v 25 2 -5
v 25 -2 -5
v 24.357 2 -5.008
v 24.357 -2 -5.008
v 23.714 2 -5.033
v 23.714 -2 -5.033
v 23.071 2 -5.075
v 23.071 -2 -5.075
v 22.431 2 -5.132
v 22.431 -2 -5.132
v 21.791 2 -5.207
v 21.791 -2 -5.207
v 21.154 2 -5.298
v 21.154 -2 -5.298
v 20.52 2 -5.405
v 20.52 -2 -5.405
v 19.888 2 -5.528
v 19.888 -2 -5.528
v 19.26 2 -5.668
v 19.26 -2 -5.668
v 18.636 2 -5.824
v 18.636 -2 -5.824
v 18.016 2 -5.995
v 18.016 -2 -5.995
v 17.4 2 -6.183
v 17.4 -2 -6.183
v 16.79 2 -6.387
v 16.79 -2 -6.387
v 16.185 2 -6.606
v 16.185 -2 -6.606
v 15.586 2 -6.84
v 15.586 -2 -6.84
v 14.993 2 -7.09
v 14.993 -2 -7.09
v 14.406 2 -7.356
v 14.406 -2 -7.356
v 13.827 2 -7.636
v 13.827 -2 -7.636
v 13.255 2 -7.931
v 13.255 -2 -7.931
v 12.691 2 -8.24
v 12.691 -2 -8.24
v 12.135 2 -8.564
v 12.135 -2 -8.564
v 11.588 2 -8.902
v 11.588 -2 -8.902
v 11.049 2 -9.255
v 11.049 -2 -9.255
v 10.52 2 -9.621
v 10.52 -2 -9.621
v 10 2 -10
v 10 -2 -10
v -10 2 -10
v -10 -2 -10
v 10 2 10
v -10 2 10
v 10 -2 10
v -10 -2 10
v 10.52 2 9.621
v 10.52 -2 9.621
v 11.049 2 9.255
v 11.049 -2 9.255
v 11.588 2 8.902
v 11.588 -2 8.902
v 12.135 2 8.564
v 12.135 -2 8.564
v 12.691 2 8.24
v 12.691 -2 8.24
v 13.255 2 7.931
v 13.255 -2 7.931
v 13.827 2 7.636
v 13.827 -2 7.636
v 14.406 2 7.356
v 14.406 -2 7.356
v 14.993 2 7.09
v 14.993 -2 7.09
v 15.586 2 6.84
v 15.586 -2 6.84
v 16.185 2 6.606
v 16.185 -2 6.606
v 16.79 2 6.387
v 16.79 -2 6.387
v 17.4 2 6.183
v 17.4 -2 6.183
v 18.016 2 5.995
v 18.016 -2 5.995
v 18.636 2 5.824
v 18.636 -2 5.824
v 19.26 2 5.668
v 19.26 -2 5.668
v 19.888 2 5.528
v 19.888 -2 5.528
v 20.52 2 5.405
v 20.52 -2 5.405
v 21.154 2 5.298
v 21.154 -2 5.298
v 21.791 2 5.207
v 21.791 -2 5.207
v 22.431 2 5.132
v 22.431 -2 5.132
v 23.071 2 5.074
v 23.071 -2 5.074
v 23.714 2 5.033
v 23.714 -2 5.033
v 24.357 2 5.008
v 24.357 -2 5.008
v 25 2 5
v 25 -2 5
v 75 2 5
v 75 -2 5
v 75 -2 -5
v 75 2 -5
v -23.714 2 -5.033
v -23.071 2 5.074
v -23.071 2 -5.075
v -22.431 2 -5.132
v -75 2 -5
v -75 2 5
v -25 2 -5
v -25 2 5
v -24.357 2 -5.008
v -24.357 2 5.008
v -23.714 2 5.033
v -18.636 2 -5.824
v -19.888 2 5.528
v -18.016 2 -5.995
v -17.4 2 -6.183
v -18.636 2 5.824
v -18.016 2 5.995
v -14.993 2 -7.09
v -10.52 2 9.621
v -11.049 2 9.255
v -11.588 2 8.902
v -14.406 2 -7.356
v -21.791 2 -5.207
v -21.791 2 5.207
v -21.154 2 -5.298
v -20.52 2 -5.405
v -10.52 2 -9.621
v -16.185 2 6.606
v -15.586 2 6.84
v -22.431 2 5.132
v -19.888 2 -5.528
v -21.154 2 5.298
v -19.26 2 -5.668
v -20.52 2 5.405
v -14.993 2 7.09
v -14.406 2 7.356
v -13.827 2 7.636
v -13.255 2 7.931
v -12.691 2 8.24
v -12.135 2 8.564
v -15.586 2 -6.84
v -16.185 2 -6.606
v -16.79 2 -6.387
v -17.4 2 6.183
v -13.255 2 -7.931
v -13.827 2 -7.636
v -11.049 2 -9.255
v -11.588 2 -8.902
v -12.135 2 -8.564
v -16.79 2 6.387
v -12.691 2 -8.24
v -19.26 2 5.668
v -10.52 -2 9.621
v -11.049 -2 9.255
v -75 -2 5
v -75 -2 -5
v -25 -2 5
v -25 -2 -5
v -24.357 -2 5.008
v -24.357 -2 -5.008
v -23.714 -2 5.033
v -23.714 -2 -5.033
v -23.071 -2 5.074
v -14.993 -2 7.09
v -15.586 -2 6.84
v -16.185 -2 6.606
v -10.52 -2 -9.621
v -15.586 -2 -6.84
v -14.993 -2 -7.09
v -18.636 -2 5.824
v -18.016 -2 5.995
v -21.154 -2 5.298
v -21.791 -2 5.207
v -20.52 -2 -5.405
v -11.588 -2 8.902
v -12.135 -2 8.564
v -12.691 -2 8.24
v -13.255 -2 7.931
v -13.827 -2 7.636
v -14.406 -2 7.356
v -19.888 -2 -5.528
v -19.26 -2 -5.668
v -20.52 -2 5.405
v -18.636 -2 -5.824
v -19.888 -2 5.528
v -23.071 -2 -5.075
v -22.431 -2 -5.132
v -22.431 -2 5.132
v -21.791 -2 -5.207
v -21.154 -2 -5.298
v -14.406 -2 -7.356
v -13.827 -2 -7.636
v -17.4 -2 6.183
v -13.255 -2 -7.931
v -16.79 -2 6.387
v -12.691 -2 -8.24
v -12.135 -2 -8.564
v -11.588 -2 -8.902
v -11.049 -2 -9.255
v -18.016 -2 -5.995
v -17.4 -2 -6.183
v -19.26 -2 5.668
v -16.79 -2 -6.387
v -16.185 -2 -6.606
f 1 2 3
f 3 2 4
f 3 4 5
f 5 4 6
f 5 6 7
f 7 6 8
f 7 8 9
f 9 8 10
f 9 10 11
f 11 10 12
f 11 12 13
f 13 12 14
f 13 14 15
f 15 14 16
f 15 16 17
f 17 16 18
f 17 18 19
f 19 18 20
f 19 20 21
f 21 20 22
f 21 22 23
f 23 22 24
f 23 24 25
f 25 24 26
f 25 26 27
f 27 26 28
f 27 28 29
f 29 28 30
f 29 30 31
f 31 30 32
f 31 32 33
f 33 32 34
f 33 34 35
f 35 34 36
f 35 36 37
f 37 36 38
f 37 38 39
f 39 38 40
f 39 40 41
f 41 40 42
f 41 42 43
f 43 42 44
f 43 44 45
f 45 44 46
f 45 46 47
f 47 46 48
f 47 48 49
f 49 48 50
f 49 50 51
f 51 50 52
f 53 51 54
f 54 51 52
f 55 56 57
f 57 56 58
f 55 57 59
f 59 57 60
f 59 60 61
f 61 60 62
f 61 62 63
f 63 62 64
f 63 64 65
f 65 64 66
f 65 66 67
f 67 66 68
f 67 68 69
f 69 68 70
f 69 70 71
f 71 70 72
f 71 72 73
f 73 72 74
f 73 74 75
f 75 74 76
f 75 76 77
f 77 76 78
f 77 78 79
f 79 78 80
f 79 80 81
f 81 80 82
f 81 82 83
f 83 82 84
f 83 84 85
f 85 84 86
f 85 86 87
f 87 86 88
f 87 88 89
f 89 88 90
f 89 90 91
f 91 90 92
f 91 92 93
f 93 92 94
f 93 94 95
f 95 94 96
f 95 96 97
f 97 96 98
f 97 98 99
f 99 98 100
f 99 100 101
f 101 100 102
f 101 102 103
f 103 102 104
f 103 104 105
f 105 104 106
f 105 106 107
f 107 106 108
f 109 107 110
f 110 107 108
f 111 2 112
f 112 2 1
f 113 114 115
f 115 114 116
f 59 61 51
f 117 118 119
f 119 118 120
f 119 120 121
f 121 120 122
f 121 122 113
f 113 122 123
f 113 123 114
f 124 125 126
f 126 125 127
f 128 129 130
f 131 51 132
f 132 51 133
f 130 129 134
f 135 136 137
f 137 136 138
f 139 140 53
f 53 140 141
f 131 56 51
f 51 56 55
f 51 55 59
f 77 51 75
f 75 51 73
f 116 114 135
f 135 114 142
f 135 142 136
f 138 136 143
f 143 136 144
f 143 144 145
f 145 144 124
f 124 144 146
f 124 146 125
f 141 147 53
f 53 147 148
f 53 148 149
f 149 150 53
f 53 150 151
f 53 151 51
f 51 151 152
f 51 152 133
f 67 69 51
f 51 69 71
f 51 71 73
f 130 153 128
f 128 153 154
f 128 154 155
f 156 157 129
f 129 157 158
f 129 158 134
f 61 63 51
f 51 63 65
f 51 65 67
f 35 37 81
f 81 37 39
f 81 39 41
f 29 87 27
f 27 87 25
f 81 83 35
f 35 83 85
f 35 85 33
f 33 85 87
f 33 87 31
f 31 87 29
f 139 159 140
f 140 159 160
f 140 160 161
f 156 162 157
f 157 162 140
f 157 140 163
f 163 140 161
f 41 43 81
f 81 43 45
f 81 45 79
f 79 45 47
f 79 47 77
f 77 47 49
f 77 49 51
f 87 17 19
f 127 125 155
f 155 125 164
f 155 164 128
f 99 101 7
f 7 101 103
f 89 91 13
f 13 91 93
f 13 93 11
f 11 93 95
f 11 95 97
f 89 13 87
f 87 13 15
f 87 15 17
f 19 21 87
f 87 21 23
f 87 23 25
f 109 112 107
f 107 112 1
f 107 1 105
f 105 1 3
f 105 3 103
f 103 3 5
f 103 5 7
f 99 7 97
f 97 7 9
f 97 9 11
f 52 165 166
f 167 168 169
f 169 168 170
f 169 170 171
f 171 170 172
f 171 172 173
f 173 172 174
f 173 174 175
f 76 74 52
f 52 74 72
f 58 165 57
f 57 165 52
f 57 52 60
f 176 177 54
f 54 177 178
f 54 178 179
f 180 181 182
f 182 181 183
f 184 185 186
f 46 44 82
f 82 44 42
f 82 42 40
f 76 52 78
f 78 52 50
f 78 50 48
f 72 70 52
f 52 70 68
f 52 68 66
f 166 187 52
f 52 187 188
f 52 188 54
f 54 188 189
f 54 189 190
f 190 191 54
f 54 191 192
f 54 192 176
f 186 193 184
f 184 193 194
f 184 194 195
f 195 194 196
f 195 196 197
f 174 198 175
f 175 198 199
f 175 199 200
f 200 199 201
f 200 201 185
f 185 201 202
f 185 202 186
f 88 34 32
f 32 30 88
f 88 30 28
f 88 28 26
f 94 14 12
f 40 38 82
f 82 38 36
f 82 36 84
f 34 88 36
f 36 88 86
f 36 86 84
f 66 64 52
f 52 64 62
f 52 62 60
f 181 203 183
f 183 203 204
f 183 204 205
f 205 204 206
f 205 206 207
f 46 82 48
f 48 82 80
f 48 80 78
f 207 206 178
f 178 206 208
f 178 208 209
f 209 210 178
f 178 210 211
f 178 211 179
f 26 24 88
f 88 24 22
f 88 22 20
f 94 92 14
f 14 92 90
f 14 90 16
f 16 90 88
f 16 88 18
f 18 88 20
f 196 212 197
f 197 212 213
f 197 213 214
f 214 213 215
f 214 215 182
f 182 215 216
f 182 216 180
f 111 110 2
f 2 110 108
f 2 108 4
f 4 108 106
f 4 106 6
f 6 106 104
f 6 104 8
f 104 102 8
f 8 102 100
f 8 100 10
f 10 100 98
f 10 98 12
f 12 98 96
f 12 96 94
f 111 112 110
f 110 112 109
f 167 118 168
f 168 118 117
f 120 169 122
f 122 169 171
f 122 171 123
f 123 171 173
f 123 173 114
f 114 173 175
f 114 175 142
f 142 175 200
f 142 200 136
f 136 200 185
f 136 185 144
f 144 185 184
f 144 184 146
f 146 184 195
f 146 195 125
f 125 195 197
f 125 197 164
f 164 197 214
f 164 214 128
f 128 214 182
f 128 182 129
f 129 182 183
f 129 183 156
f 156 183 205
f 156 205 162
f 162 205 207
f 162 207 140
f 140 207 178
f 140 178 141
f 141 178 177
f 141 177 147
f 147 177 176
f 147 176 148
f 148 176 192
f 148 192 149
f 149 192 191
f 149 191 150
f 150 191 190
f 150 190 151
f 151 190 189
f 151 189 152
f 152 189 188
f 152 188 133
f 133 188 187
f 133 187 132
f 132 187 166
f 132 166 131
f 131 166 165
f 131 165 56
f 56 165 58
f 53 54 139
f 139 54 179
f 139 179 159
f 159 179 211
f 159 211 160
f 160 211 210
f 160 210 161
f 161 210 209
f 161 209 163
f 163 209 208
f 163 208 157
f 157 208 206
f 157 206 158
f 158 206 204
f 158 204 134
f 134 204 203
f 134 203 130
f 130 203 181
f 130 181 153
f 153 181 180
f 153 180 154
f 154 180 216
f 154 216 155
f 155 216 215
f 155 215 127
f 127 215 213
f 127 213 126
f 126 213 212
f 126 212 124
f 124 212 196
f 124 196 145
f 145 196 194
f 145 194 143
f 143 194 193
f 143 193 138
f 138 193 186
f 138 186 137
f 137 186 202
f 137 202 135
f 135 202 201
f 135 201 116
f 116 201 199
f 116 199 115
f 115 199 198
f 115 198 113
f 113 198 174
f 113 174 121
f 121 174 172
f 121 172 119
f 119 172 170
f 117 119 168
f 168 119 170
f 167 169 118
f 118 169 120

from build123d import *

# Parameters (mm, degrees)
BOSS_EXTRUDE1_DEPTH     = 2
CUT_EXTRUDE2_DEPTH      = 98.534609242
CUT_EXTRUDE2_DEPTH_BACK = 98.534609242
CIRPATTERN2_START       = -2
CIRPATTERN2_DEPTH       = 4


# Read off the part's stored shape, not the designer's step: CirPattern2
with BuildPart() as part:
    # Sketch1 → Boss-Extrude1 (new, symmetric)
    with BuildSketch(Plane(origin=(0, 0, 0), x_dir=(1, 0, 0), z_dir=(0, 1, 0))):
        with BuildLine():
            Line((25, 5), (97, 5))
            Line((97, 5), (97, -5))
            Line((97, -5), (25, -5))
            ThreePointArc((25, -5), (17.09430585, -6.282917549), (10, -10))
            Line((10, -10), (0, -10))
            Line((0, -10), (0, 10))
            Line((0, 10), (10, 10))
            ThreePointArc((10, 10), (17.09430585, 6.282917549), (25, 5))
        make_face()
    extrude(amount=BOSS_EXTRUDE1_DEPTH, both=True)

    # Sketch2<3> → Cut-Extrude2 (cut, two sides: drawn at the far end of the back side and taken through both)
    with BuildSketch(Plane(origin=(0, 0, 0), x_dir=(1, 0, 0), z_dir=(0, 1, 0)).offset(-CUT_EXTRUDE2_DEPTH_BACK)):
        Polygon((75, 5), (75, 0), (80.958767963, -5), (97, -5), (97, 5), align=None)
        Polygon((80.958767963, -5), (75, 0), (75, -5), align=None)
    extrude(amount=CUT_EXTRUDE2_DEPTH + CUT_EXTRUDE2_DEPTH_BACK, mode=Mode.SUBTRACT)

    # CirPattern2 outline → CirPattern2 (add)
    with BuildSketch(Plane(origin=(0, 0, 0), x_dir=(1, 0, 0), z_dir=(0, 1, 0)).offset(CIRPATTERN2_START)):
        with BuildLine():
            Line((0, 10), (-10, 10))
            ThreePointArc((-10, 10), (-17.09430585, 6.282917549), (-25, 5))
            Line((-25, 5), (-75, 5))
            Line((-75, 5), (-75, -5))
            Line((-75, -5), (-25, -5))
            ThreePointArc((-25, -5), (-17.09430585, -6.282917549), (-10, -10))
            Line((-10, -10), (0, -10))
            Line((0, -10), (0, 10))
        make_face()
    extrude(amount=CIRPATTERN2_DEPTH)


solid = part.part
